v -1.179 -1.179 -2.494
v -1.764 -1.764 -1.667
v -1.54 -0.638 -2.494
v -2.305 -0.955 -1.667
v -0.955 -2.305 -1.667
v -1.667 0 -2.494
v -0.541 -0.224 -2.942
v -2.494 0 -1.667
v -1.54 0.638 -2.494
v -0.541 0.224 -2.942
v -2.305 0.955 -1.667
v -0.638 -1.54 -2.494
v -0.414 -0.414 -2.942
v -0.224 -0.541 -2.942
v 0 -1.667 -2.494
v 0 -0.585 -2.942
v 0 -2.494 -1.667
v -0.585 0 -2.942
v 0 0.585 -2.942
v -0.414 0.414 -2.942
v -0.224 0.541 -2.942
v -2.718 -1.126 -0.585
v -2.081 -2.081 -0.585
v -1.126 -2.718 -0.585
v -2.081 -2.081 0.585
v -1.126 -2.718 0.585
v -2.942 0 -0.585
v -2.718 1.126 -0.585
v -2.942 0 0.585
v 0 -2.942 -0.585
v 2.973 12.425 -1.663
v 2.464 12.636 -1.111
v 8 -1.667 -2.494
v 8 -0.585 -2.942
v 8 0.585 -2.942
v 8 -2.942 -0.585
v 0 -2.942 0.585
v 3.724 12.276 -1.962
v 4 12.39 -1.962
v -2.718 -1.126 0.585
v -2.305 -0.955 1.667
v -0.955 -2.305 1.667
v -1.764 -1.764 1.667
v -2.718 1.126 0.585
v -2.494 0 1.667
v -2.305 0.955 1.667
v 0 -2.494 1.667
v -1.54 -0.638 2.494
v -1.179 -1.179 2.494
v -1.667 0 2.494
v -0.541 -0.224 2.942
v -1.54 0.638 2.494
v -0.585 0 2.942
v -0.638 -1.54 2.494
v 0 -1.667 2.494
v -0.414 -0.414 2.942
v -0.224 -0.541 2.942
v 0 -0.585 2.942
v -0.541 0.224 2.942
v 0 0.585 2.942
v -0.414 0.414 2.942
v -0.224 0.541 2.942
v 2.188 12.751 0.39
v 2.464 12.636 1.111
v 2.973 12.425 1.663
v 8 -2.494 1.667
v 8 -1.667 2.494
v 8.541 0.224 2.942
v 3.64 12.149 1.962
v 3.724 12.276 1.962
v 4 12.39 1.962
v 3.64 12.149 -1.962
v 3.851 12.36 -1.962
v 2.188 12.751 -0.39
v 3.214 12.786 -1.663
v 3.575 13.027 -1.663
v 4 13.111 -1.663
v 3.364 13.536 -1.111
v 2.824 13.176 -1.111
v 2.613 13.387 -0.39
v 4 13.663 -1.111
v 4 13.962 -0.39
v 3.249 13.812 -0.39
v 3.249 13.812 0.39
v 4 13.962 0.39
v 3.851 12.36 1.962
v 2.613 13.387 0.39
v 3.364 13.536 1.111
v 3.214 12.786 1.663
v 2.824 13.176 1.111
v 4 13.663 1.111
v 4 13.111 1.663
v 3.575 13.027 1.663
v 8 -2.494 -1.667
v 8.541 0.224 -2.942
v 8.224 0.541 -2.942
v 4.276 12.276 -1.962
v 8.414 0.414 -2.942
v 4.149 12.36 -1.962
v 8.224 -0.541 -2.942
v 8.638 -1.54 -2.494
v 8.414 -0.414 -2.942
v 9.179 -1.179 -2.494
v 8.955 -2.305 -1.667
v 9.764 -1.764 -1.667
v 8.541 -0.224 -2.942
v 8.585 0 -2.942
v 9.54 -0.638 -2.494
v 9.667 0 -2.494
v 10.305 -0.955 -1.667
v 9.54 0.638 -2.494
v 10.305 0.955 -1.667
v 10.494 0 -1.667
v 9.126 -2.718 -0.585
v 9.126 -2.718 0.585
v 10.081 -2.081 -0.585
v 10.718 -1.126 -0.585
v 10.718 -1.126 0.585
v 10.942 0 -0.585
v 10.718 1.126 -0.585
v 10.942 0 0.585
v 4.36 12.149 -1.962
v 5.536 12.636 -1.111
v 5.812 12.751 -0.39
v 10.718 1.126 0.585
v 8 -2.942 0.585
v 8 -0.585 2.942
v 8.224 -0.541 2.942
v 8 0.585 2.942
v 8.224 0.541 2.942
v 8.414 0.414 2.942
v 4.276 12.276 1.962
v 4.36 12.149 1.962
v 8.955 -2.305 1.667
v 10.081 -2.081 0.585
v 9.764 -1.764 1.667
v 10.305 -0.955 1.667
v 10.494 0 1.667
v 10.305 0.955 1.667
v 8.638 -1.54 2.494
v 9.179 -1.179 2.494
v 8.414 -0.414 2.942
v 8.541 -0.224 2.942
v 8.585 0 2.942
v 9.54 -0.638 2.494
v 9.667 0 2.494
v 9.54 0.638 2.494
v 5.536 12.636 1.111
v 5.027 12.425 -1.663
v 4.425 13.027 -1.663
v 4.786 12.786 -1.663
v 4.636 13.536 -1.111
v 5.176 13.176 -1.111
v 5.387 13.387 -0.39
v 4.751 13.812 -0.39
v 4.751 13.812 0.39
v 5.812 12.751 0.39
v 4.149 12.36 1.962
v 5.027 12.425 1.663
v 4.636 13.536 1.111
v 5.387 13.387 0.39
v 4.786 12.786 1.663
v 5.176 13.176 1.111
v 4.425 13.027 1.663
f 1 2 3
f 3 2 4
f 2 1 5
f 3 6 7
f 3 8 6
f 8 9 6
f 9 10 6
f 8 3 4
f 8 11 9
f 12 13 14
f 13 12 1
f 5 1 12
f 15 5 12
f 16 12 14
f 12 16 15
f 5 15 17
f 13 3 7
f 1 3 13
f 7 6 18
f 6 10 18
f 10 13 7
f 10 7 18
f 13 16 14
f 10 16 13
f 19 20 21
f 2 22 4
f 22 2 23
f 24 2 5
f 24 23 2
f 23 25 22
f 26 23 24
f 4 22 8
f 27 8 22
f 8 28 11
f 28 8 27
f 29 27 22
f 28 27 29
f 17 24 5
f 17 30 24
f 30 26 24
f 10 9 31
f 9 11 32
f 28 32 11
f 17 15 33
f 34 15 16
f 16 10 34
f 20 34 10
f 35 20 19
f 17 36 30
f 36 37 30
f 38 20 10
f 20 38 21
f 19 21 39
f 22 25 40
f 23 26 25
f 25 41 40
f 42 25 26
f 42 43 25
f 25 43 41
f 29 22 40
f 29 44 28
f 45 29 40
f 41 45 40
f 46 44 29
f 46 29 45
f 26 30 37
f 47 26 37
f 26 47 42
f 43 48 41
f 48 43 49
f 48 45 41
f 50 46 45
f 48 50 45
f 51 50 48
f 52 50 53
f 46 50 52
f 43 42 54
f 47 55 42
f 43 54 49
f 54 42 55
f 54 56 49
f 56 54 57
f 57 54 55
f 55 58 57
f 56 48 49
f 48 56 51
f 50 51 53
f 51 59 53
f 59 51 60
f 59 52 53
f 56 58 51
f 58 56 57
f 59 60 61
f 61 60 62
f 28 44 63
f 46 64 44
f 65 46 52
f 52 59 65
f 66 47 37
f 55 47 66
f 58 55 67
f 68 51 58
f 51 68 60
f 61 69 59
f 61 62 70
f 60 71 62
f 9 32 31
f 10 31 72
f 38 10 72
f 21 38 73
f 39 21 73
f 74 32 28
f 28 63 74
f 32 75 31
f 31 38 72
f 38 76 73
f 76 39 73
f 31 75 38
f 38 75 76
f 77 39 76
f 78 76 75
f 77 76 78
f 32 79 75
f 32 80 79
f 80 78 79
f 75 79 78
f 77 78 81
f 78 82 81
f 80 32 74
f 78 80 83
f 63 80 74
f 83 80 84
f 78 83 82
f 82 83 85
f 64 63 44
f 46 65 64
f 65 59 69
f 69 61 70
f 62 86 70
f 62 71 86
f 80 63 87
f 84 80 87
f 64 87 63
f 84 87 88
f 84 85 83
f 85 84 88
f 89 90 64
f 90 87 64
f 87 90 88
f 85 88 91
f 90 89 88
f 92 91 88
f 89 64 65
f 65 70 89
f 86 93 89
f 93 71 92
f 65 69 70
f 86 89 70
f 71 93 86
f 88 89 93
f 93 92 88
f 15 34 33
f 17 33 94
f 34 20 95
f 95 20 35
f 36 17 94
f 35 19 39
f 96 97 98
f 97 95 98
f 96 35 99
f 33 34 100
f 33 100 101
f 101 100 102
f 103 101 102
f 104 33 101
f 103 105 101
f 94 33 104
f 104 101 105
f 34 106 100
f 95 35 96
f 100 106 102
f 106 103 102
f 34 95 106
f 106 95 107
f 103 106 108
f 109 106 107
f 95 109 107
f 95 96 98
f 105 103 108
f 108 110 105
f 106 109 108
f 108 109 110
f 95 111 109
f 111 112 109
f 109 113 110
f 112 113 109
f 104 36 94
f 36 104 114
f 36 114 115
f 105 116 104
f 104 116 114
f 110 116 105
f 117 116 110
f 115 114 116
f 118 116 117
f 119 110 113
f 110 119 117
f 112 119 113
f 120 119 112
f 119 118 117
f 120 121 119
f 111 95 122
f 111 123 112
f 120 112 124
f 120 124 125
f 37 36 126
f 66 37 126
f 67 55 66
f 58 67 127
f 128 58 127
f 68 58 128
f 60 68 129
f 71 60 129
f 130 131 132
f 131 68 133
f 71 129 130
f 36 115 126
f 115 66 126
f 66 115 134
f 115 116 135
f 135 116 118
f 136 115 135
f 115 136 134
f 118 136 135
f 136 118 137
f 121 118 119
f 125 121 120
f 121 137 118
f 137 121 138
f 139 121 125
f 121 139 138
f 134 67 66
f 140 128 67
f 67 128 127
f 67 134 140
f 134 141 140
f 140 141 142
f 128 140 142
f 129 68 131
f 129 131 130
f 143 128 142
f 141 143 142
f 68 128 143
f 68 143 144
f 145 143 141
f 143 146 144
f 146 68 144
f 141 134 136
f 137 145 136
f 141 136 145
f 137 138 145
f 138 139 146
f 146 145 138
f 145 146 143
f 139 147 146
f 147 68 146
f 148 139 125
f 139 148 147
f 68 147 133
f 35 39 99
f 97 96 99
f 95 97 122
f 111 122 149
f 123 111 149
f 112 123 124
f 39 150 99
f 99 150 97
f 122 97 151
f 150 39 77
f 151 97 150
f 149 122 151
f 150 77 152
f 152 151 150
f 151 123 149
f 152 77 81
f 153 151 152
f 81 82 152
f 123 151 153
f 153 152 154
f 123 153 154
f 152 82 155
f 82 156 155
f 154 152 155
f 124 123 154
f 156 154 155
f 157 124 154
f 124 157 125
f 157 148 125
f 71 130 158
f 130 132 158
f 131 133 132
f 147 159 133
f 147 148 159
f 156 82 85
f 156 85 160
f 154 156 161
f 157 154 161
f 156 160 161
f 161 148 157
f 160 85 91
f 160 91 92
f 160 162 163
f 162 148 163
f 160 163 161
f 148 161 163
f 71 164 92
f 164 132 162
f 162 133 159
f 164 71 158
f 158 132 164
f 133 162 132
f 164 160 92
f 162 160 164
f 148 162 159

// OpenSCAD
// A hull whose child is itself a hull.
$fn = 16;
hull() {
  hull() { sphere(3); translate([8, 0, 0]) sphere(3); }
  translate([4, 12, 0]) sphere(2);
}
